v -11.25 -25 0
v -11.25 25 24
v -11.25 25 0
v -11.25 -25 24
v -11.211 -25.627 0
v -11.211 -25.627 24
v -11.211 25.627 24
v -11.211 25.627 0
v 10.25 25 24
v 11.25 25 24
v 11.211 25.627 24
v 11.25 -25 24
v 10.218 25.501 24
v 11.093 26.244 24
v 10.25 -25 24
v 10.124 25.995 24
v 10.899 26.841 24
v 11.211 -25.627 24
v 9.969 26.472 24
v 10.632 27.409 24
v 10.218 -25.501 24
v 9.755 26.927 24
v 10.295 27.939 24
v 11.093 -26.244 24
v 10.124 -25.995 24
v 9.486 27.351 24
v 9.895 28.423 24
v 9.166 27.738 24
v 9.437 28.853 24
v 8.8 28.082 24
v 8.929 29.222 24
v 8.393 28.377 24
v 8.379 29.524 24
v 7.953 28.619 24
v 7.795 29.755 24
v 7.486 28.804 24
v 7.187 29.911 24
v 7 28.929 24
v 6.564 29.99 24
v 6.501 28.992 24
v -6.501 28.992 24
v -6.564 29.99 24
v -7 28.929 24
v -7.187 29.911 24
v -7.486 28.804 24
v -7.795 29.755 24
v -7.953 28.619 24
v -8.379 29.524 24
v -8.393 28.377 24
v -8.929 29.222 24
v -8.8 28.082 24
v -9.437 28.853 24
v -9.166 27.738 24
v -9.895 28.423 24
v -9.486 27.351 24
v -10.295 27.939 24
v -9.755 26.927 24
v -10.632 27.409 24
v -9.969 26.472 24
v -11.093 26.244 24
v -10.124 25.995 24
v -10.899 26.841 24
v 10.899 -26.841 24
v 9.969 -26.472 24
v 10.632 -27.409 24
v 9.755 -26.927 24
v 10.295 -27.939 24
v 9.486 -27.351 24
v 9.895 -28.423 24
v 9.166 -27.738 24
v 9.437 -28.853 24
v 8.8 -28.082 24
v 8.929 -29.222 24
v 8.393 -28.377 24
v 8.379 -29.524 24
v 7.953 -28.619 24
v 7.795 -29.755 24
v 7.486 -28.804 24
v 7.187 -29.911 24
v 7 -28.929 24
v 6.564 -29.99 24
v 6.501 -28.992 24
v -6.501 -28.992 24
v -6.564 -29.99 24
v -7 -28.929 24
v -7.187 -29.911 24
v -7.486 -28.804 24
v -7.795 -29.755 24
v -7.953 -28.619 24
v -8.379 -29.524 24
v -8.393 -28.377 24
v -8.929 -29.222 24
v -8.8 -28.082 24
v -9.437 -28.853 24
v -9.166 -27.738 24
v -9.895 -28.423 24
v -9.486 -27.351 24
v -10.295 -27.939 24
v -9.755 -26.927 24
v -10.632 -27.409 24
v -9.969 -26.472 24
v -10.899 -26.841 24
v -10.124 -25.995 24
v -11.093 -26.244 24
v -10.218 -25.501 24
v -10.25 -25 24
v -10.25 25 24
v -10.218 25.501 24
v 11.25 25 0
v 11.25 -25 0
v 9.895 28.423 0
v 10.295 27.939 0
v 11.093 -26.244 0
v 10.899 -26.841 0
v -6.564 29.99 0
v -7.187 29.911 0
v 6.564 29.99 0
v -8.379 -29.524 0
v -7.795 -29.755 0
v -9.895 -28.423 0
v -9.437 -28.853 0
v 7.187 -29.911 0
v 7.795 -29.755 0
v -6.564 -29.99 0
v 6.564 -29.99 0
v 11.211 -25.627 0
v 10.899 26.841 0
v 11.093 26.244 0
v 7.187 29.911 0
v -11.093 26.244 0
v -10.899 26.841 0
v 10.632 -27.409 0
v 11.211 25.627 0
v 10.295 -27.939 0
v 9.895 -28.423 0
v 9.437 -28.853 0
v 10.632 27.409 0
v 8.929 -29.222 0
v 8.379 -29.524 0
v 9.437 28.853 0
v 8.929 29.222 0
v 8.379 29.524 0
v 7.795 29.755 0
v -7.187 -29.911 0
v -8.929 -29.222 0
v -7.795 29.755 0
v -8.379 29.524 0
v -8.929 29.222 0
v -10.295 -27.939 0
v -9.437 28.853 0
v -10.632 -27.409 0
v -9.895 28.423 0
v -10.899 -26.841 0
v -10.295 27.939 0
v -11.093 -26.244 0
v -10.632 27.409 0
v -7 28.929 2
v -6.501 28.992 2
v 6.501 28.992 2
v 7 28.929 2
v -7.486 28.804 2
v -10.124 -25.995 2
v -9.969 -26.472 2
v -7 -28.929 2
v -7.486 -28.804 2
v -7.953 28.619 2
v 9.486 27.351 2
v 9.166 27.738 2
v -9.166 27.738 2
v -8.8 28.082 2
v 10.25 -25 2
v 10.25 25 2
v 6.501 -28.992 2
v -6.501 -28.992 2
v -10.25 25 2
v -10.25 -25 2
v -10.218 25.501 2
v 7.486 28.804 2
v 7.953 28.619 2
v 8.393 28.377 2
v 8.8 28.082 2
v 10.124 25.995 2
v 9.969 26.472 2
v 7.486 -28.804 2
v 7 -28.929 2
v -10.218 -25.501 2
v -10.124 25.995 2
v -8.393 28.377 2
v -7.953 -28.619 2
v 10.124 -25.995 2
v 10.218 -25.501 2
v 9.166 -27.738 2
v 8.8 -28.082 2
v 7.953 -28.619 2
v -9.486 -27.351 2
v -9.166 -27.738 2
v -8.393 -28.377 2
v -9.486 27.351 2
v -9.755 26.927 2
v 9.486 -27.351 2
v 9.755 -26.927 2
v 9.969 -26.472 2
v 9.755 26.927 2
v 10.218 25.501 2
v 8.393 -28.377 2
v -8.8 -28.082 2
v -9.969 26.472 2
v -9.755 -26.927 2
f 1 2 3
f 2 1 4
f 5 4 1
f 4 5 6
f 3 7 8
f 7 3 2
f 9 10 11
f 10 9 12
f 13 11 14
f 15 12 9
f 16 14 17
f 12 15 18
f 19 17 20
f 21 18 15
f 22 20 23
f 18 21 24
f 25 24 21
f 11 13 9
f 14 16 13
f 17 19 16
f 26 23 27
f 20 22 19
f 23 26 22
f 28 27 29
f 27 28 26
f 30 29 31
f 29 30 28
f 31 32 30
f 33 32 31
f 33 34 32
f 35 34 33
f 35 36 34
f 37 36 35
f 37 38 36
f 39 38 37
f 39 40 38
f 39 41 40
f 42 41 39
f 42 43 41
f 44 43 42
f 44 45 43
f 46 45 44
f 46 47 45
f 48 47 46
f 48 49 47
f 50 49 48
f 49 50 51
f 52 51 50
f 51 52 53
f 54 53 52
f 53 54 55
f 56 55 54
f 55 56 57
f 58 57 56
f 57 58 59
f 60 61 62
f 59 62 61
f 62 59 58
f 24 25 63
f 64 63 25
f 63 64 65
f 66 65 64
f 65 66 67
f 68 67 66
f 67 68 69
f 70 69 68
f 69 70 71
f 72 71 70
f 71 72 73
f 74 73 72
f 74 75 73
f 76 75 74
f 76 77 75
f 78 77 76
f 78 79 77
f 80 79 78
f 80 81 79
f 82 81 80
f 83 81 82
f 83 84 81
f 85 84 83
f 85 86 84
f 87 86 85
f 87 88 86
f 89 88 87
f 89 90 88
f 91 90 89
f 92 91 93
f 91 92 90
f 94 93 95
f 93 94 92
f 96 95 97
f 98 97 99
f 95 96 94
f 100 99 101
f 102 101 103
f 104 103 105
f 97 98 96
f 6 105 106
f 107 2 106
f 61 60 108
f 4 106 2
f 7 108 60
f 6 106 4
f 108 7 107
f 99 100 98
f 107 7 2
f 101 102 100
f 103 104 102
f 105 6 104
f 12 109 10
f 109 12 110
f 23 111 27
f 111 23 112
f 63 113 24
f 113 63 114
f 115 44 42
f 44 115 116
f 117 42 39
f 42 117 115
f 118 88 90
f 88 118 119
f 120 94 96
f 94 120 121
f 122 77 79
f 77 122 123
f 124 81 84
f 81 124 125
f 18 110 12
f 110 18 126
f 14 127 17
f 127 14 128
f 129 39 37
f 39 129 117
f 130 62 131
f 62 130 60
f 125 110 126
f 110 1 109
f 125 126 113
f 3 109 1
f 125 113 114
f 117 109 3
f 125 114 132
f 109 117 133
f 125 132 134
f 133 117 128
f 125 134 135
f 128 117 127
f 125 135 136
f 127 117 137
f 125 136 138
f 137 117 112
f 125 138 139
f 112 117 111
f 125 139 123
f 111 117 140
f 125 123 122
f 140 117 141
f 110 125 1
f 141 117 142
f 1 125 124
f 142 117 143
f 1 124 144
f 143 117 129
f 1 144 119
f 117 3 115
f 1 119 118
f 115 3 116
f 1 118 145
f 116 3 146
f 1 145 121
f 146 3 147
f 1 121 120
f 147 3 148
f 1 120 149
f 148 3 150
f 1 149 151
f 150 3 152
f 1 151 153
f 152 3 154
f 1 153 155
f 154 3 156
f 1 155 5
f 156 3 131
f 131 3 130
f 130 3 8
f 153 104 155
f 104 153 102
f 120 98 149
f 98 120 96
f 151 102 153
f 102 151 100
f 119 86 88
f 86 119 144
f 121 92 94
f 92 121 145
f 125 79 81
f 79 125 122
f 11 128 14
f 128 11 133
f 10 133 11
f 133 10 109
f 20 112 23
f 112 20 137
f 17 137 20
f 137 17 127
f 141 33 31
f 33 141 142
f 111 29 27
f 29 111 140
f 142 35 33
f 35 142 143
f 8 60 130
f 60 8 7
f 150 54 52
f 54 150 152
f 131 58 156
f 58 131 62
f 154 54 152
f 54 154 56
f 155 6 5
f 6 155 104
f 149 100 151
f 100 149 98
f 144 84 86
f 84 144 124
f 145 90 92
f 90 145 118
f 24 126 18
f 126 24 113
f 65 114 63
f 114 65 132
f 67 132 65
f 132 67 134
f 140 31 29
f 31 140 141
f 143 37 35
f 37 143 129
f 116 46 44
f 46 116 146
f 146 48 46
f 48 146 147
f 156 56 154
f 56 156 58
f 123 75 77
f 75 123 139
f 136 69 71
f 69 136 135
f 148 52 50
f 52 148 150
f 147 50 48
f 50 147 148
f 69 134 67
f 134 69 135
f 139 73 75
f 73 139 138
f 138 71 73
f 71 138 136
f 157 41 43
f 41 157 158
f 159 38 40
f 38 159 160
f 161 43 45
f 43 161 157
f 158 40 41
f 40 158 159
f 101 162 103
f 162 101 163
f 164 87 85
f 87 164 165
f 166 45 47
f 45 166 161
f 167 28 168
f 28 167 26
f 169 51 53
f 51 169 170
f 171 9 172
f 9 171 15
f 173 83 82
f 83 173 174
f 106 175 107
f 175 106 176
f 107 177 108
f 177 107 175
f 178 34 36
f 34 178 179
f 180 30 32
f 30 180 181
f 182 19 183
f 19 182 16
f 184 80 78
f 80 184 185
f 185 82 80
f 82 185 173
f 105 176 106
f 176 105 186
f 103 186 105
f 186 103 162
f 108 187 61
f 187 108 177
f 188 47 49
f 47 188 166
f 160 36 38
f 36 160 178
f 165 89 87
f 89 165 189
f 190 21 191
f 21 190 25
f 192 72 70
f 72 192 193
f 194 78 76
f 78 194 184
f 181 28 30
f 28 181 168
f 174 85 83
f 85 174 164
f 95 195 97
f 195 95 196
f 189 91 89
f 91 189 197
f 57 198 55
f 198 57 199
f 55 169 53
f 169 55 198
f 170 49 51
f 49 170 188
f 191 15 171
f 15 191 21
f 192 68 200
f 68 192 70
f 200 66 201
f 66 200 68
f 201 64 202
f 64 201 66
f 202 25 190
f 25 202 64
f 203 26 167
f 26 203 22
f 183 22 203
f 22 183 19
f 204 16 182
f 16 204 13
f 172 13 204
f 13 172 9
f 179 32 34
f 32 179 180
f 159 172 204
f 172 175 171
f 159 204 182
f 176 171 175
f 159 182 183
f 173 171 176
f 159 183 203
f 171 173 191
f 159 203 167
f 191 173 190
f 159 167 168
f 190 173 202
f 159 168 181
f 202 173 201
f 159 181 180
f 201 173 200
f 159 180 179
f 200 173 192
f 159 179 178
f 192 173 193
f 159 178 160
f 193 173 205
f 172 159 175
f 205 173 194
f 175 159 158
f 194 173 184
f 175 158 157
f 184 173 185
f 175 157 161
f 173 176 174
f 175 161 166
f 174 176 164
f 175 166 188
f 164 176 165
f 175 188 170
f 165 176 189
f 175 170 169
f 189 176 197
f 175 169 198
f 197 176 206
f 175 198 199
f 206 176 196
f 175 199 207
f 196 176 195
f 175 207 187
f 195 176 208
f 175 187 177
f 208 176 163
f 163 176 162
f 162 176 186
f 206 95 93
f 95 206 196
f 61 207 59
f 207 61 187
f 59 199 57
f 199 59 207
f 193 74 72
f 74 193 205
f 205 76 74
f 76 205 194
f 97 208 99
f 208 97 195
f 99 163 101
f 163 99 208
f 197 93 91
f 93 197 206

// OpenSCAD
$fn = 50;


difference() {
	union() {
		hull() {
			translate(v = [-6.2500000000, 25.0000000000, 0]) {
				cylinder(h = 24, r = 5);
			}
			translate(v = [6.2500000000, 25.0000000000, 0]) {
				cylinder(h = 24, r = 5);
			}
			translate(v = [-6.2500000000, -25.0000000000, 0]) {
				cylinder(h = 24, r = 5);
			}
			translate(v = [6.2500000000, -25.0000000000, 0]) {
				cylinder(h = 24, r = 5);
			}
		}
	}
	union() {
		translate(v = [0, 0, 2]) {
			hull() {
				translate(v = [-6.2500000000, 25.0000000000, 0]) {
					cylinder(h = 22, r = 4);
				}
				translate(v = [6.2500000000, 25.0000000000, 0]) {
					cylinder(h = 22, r = 4);
				}
				translate(v = [-6.2500000000, -25.0000000000, 0]) {
					cylinder(h = 22, r = 4);
				}
				translate(v = [6.2500000000, -25.0000000000, 0]) {
					cylinder(h = 22, r = 4);
				}
			}
		}
	}
}
